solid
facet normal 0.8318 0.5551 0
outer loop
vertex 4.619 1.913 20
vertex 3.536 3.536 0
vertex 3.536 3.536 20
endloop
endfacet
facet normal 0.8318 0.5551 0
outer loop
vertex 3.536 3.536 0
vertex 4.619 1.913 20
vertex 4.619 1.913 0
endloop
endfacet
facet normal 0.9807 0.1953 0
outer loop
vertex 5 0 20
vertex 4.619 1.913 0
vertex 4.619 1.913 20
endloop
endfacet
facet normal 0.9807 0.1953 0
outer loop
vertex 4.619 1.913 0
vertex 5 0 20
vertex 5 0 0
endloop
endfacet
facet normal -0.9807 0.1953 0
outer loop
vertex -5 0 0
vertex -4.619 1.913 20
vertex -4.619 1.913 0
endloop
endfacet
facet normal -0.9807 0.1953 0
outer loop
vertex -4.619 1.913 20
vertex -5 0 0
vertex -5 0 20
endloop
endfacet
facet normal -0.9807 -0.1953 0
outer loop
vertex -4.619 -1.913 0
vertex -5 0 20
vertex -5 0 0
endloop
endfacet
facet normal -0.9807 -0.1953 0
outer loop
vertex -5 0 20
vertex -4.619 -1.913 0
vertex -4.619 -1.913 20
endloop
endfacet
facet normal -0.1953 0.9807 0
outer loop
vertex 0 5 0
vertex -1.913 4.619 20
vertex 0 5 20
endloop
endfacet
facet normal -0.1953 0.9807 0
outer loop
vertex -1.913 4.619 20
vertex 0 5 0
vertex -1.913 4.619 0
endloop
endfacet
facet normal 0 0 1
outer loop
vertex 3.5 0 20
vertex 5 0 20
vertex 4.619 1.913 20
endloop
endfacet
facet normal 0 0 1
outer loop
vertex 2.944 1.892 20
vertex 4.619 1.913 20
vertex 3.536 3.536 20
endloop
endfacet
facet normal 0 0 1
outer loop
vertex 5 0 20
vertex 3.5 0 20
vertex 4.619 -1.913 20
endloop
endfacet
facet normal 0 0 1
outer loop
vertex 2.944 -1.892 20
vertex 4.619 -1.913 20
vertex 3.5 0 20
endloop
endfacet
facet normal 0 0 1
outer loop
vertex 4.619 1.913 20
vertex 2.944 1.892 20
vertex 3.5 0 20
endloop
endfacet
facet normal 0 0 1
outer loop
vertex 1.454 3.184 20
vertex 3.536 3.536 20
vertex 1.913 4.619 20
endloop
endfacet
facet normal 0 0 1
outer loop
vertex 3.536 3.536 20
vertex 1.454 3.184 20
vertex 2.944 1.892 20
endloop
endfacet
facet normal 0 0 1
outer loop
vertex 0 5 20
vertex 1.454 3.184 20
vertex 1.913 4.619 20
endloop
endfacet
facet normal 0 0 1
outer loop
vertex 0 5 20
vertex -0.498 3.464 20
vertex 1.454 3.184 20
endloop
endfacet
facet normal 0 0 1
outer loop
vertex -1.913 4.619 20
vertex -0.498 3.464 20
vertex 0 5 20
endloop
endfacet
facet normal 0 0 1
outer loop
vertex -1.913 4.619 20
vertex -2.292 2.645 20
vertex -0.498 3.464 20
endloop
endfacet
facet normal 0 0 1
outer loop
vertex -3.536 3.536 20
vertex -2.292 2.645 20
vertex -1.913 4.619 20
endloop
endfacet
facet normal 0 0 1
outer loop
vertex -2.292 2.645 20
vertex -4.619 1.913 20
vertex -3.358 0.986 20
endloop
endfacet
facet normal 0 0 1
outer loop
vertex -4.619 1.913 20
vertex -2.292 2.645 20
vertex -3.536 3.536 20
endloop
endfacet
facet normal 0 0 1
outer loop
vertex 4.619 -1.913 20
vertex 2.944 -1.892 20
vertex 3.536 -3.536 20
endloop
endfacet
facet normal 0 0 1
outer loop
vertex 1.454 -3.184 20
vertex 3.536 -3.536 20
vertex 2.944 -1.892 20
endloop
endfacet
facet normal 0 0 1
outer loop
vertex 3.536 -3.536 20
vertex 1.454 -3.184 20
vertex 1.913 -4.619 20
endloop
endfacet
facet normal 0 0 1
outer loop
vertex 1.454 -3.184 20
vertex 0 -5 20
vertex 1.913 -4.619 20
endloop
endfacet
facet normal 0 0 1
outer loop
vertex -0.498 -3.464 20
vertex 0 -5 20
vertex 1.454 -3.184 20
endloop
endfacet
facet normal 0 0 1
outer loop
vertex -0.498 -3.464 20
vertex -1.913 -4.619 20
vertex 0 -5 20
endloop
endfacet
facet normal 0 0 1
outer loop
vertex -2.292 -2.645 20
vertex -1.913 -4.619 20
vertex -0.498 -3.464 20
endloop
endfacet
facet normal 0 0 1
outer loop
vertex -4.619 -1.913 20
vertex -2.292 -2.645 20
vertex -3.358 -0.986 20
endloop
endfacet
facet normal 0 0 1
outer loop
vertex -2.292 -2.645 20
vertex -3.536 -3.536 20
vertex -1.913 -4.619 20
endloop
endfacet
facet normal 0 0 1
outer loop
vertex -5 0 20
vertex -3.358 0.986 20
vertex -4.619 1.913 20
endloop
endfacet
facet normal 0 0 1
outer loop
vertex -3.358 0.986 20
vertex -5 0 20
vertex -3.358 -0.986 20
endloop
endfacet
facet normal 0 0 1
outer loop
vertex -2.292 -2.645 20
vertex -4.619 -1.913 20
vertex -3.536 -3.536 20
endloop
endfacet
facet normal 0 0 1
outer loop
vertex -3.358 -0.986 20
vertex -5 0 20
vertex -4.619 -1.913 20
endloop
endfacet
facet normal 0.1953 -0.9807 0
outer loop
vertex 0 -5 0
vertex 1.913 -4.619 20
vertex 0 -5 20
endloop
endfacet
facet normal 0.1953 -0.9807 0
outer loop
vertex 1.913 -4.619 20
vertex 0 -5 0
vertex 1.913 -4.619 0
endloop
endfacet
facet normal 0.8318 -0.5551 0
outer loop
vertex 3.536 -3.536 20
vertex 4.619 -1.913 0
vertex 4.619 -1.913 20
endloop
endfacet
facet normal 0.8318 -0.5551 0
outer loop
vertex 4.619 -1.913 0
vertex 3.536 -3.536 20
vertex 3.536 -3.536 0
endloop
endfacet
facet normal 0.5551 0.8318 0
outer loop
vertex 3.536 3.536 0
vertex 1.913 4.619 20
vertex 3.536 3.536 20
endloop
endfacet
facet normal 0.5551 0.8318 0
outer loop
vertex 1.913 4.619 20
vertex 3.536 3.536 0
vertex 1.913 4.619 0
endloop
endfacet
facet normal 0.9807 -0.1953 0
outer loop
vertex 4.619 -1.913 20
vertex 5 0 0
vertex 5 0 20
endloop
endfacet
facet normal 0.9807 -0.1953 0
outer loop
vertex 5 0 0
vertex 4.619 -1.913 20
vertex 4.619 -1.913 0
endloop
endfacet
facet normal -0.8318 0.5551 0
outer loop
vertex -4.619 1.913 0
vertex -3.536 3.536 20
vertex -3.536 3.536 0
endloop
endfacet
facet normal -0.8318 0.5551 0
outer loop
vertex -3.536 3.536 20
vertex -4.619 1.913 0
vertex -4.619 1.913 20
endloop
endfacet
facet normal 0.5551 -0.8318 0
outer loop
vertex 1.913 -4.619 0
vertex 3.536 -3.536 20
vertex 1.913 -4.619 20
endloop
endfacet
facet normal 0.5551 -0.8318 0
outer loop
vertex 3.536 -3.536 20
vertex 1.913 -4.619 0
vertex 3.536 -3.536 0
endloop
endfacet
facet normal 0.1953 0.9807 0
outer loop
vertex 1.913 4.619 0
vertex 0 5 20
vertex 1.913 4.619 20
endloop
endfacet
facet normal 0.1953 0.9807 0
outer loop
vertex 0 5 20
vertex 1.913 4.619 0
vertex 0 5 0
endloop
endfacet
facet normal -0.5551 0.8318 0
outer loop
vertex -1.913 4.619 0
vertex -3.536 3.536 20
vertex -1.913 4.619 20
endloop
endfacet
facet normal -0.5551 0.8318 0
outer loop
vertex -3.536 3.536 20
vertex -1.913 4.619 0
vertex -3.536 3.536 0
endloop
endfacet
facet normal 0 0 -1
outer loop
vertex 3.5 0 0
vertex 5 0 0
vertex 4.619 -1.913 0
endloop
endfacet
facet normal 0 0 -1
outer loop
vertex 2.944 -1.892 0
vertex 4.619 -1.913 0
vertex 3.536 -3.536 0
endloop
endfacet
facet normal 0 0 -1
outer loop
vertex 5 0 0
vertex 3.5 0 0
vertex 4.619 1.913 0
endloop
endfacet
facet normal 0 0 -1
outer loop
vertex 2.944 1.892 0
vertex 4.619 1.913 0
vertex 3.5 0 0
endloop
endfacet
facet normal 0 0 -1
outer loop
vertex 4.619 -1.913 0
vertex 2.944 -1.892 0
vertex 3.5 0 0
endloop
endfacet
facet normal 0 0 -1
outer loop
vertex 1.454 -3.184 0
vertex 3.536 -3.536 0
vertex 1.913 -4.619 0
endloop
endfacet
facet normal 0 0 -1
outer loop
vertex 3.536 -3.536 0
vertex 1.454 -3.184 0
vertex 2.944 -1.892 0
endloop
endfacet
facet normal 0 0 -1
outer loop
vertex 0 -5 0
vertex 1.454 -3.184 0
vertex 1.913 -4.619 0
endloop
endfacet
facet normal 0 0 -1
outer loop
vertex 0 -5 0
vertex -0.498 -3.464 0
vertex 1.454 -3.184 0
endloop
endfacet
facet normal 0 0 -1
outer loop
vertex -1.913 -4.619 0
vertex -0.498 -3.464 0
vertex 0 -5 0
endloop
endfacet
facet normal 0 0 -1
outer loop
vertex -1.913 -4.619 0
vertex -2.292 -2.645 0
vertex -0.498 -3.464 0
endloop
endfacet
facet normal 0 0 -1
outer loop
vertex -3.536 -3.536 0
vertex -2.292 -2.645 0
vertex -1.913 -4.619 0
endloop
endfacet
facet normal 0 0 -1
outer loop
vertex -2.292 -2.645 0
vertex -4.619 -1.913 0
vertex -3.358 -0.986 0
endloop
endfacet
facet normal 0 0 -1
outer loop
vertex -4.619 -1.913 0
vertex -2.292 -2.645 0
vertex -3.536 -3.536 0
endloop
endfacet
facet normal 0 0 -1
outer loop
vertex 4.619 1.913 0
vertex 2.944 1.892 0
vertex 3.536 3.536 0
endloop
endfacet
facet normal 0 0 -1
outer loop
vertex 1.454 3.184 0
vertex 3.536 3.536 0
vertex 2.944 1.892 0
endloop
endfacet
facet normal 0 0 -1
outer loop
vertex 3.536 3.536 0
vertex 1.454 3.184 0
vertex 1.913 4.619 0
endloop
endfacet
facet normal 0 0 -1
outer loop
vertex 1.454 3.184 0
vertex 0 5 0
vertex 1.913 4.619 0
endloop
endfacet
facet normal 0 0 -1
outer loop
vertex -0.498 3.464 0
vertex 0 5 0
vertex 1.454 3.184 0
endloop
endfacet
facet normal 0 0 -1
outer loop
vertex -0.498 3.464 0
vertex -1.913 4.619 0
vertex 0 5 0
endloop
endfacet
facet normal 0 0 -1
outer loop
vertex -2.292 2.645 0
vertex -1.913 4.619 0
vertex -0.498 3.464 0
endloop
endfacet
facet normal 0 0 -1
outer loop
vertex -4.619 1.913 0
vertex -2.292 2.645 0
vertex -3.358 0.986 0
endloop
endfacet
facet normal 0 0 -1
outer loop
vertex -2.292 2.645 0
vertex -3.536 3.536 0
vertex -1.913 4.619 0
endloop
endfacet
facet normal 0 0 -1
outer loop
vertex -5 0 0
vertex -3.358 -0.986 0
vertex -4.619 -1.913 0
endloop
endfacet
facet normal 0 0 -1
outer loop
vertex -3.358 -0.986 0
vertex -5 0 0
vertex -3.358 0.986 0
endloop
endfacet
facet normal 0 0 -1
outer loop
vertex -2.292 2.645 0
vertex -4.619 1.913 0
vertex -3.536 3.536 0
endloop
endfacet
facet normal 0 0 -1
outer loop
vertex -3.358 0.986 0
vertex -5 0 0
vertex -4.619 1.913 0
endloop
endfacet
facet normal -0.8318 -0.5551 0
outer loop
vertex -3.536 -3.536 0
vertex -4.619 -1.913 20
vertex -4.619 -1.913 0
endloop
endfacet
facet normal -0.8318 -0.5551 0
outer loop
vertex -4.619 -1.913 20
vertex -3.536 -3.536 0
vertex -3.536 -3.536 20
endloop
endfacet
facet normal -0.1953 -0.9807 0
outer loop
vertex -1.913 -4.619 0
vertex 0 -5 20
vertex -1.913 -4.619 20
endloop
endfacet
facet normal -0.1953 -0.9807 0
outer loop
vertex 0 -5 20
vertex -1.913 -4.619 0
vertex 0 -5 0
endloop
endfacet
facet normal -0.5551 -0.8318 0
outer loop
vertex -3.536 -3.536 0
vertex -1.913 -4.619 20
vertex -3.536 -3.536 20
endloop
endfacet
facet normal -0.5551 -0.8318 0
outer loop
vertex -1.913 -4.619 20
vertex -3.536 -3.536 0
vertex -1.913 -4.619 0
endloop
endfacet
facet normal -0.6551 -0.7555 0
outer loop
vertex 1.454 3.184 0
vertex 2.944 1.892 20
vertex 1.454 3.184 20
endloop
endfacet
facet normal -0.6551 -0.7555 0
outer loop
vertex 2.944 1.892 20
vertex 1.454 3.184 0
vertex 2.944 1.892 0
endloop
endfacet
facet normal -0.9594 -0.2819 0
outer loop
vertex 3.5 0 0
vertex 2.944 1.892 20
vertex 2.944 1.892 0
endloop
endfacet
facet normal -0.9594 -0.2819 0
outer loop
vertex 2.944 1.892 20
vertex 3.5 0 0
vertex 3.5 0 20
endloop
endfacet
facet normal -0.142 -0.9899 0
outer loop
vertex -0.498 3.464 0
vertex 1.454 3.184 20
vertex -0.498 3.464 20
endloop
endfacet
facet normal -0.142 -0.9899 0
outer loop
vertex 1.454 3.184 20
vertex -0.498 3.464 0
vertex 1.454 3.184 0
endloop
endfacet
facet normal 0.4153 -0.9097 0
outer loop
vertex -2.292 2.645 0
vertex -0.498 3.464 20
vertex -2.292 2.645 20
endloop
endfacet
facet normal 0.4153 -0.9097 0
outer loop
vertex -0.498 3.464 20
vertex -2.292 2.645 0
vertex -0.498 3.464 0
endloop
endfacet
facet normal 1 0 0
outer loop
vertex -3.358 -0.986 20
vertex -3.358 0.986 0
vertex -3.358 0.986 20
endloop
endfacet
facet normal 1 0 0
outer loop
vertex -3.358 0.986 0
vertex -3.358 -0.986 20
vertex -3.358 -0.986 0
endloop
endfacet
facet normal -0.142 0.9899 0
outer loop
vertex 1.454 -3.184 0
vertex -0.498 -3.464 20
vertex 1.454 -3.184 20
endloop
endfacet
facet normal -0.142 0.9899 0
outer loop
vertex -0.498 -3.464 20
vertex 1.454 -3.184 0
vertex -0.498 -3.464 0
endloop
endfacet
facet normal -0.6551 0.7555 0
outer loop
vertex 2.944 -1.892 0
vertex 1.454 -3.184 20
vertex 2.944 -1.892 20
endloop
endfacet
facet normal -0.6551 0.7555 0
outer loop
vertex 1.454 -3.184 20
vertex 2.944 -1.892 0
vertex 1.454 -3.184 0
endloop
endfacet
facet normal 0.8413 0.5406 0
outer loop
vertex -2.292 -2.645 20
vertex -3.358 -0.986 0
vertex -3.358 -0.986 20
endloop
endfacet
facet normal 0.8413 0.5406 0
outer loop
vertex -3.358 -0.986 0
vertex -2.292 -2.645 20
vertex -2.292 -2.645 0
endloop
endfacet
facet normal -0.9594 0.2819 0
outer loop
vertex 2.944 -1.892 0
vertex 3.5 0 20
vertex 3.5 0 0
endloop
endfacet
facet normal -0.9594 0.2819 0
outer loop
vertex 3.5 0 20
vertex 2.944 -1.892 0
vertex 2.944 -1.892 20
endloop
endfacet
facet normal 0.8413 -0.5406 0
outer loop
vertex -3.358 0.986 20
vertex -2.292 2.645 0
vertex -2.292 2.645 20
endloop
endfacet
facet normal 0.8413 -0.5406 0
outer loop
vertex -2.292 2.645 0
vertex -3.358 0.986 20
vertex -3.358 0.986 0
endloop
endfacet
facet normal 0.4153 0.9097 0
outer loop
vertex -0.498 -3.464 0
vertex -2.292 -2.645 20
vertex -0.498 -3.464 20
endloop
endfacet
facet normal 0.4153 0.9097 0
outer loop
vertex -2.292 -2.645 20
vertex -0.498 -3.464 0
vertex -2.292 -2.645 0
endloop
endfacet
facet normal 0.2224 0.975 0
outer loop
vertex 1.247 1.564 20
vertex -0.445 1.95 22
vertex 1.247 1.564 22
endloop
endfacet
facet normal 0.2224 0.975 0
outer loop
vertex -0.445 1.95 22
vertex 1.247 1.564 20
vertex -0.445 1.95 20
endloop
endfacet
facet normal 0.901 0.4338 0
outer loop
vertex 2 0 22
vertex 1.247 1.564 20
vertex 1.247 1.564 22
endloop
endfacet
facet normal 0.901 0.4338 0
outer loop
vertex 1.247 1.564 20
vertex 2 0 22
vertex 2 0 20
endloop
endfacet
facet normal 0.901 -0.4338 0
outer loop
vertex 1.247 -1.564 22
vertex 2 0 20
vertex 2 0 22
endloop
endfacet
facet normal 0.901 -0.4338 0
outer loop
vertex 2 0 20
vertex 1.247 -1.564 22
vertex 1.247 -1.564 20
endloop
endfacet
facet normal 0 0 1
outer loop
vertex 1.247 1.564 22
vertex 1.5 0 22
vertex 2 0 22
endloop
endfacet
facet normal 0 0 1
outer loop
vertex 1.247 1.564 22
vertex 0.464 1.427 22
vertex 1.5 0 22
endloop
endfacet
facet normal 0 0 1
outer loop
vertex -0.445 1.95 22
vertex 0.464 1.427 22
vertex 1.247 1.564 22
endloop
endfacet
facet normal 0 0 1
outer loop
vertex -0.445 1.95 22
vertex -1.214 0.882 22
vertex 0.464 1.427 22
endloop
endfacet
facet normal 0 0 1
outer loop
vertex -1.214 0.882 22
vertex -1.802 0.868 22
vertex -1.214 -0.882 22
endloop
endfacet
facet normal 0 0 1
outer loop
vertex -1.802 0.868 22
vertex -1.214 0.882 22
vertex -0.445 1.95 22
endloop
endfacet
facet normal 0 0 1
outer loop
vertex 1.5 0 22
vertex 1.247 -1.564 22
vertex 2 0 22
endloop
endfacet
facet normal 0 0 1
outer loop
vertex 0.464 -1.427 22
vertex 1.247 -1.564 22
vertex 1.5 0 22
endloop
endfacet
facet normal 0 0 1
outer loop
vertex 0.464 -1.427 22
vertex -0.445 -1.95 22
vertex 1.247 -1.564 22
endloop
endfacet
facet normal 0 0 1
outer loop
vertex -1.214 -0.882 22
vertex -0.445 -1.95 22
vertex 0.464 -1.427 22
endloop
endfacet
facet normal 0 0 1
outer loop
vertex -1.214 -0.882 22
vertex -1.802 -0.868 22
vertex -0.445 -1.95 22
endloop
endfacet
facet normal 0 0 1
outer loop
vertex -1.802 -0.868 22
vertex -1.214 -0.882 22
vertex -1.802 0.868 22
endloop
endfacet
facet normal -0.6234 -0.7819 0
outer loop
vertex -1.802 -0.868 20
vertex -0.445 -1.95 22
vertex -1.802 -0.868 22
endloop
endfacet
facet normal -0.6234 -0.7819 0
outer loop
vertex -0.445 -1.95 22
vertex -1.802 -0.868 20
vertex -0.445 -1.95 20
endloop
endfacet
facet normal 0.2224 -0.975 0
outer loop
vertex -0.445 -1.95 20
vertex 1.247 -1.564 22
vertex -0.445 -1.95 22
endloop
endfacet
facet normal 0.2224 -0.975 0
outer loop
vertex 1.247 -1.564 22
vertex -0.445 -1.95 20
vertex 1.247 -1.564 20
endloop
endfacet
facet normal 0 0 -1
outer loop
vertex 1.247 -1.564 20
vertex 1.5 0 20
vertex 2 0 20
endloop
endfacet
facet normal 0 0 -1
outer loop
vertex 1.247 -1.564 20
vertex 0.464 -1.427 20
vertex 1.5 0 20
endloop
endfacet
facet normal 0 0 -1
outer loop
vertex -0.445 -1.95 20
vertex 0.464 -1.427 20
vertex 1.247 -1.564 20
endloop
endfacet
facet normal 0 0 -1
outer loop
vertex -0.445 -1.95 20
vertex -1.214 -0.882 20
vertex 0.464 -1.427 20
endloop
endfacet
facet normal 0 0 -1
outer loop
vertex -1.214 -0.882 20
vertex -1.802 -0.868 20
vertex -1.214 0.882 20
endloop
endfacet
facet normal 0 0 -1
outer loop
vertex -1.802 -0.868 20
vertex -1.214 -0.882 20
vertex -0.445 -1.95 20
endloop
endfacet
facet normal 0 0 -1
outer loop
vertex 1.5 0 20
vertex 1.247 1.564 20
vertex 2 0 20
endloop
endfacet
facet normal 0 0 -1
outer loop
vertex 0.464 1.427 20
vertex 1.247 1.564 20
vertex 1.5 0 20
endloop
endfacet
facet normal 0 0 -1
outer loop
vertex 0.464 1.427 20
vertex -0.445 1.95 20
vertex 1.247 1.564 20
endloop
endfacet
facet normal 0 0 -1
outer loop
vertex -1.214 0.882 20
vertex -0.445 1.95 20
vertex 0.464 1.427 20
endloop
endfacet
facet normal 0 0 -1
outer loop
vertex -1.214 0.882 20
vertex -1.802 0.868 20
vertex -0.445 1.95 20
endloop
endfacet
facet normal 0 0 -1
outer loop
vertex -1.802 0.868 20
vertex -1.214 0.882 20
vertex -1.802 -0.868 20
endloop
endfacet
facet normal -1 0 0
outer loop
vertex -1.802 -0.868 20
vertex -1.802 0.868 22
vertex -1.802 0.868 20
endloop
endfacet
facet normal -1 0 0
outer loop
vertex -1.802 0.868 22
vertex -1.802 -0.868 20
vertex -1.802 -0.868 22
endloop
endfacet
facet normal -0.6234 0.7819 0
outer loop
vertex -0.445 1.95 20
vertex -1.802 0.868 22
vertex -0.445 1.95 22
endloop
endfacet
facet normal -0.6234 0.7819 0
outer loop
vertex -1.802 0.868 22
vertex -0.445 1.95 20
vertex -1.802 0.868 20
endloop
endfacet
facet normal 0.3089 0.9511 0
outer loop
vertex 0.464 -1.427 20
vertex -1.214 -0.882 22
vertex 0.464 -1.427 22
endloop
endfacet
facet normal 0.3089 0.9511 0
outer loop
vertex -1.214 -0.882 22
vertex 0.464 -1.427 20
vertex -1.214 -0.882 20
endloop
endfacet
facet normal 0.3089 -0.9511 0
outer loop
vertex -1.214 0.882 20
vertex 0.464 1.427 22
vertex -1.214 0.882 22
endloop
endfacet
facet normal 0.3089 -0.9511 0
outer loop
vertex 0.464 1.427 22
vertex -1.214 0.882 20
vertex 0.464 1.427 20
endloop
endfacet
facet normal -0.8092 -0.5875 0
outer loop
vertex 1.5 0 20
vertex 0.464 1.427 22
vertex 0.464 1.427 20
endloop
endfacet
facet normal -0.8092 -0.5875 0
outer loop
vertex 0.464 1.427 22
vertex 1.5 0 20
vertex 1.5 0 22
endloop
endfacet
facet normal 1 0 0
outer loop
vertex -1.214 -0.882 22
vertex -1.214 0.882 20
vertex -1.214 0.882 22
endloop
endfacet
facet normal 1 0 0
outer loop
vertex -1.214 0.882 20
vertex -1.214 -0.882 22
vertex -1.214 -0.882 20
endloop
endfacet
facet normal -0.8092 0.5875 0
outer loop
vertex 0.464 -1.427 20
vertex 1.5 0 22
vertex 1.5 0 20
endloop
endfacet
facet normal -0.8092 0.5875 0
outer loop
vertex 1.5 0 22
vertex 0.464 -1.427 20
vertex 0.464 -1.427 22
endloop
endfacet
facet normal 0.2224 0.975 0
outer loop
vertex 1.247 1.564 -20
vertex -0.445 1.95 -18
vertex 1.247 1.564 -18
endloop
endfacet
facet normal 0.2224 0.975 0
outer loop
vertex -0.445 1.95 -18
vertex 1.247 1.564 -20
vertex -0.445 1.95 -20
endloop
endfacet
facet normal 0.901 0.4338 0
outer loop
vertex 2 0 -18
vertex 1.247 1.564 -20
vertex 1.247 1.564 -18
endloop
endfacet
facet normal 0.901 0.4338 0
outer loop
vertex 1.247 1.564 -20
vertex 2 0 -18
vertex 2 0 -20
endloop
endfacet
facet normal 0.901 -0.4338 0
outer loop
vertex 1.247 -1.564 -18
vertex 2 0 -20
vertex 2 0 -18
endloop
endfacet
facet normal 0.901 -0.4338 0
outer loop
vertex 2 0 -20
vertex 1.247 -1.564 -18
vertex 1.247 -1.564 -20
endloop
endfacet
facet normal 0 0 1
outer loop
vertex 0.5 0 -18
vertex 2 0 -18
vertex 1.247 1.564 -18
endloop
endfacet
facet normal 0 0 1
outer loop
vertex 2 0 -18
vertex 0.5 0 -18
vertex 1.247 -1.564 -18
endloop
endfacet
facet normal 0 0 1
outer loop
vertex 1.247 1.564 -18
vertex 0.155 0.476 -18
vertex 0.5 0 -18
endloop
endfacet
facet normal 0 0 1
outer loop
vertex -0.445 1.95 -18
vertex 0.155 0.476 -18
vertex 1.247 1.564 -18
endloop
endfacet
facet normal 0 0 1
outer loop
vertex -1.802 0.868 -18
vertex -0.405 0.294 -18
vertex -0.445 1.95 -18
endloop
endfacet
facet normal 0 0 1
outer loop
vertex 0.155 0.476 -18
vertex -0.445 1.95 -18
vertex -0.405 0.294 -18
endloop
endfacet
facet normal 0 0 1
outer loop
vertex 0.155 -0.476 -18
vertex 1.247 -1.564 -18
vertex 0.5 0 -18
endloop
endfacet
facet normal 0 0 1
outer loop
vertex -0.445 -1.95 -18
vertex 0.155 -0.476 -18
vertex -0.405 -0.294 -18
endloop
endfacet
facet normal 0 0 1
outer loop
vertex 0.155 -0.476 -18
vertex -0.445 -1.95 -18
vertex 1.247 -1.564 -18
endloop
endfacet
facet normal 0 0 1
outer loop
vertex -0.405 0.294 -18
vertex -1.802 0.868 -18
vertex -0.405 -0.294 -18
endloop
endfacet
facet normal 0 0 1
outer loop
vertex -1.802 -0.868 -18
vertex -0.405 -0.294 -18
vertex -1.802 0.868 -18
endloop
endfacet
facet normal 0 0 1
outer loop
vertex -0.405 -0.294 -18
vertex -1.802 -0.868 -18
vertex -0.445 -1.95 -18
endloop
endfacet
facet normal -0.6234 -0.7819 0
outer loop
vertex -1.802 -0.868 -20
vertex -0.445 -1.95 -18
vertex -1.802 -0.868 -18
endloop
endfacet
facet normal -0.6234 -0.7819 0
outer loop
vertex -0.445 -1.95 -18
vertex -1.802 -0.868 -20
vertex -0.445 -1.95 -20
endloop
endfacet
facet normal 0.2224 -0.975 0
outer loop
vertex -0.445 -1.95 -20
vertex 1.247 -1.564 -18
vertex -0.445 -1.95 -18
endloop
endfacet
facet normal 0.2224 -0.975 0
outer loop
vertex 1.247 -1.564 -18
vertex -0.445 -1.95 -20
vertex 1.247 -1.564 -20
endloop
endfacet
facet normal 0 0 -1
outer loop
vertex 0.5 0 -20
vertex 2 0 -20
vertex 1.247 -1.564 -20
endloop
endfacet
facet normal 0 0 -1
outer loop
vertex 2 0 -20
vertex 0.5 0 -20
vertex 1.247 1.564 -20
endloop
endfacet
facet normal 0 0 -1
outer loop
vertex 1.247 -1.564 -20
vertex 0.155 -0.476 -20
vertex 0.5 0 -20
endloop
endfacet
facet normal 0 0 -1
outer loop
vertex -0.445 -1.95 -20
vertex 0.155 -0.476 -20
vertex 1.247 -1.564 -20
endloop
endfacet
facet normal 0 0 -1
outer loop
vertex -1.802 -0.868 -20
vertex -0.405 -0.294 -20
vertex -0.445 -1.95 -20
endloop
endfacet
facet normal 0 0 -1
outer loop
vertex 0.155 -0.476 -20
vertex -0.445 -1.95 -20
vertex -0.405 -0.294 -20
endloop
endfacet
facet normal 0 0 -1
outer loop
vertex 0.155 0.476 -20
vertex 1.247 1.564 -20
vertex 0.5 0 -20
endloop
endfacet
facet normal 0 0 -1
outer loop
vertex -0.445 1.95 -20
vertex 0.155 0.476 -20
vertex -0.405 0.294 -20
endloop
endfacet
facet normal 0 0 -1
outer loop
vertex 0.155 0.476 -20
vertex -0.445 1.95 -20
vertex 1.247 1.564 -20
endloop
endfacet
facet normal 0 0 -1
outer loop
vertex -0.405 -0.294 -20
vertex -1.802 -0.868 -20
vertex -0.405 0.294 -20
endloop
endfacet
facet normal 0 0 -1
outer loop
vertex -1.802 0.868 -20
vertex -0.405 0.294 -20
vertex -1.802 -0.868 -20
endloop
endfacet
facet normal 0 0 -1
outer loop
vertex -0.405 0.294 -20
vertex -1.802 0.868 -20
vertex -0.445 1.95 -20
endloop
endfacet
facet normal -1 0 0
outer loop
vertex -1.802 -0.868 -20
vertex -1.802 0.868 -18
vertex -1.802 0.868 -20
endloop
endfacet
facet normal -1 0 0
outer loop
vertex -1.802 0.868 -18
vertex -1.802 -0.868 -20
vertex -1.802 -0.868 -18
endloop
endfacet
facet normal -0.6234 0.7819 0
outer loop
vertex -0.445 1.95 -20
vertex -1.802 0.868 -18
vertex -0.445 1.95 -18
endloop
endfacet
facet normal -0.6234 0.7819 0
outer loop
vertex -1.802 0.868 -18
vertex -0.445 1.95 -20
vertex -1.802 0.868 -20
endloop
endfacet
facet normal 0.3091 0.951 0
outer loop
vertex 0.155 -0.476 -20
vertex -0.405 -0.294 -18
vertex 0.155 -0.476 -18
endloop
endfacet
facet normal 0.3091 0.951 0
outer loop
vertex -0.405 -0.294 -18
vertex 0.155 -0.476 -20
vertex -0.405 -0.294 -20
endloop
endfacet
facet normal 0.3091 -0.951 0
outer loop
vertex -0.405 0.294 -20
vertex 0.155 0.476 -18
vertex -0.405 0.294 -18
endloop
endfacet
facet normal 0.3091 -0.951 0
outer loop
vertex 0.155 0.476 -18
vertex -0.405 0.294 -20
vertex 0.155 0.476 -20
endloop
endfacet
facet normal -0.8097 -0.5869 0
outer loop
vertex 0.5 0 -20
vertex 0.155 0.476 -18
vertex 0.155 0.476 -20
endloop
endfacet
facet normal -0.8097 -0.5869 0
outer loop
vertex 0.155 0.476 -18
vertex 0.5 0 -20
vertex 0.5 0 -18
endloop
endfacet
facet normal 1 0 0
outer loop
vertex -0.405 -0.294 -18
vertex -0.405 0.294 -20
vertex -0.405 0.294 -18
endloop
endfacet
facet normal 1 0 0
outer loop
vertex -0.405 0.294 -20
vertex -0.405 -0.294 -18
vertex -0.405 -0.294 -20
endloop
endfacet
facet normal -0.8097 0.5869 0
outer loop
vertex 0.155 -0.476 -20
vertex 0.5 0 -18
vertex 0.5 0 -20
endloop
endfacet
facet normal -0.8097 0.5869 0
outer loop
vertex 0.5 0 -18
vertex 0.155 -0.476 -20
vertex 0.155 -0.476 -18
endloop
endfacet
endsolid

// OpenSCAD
// Plug Parameters
plug_diameter = 10;
plug_height = 20;
plug_wall_thickness = 1.5;
plug_tip_radius = 2;
plug_base_radius = 2;

// Plug Body
difference() {
  cylinder(h = plug_height, r = plug_diameter / 2, center = false);
  cylinder(h = plug_height + 0.1, r = plug_diameter / 2 - plug_wall_thickness, center = false);
}

// Plug Tip
translate([0, 0, plug_height]) {
  difference() {
    cylinder(h = 2, r = plug_tip_radius, center = false);
    cylinder(h = 2, r = plug_tip_radius - 0.5, center = false);
  }
}

// Plug Base
translate([0, 0, -plug_height]) {
  difference() {
    cylinder(h = 2, r = plug_base_radius, center = false);
    cylinder(h = 2, r = plug_base_radius - plug_wall_thickness, center = false);
  }
}
